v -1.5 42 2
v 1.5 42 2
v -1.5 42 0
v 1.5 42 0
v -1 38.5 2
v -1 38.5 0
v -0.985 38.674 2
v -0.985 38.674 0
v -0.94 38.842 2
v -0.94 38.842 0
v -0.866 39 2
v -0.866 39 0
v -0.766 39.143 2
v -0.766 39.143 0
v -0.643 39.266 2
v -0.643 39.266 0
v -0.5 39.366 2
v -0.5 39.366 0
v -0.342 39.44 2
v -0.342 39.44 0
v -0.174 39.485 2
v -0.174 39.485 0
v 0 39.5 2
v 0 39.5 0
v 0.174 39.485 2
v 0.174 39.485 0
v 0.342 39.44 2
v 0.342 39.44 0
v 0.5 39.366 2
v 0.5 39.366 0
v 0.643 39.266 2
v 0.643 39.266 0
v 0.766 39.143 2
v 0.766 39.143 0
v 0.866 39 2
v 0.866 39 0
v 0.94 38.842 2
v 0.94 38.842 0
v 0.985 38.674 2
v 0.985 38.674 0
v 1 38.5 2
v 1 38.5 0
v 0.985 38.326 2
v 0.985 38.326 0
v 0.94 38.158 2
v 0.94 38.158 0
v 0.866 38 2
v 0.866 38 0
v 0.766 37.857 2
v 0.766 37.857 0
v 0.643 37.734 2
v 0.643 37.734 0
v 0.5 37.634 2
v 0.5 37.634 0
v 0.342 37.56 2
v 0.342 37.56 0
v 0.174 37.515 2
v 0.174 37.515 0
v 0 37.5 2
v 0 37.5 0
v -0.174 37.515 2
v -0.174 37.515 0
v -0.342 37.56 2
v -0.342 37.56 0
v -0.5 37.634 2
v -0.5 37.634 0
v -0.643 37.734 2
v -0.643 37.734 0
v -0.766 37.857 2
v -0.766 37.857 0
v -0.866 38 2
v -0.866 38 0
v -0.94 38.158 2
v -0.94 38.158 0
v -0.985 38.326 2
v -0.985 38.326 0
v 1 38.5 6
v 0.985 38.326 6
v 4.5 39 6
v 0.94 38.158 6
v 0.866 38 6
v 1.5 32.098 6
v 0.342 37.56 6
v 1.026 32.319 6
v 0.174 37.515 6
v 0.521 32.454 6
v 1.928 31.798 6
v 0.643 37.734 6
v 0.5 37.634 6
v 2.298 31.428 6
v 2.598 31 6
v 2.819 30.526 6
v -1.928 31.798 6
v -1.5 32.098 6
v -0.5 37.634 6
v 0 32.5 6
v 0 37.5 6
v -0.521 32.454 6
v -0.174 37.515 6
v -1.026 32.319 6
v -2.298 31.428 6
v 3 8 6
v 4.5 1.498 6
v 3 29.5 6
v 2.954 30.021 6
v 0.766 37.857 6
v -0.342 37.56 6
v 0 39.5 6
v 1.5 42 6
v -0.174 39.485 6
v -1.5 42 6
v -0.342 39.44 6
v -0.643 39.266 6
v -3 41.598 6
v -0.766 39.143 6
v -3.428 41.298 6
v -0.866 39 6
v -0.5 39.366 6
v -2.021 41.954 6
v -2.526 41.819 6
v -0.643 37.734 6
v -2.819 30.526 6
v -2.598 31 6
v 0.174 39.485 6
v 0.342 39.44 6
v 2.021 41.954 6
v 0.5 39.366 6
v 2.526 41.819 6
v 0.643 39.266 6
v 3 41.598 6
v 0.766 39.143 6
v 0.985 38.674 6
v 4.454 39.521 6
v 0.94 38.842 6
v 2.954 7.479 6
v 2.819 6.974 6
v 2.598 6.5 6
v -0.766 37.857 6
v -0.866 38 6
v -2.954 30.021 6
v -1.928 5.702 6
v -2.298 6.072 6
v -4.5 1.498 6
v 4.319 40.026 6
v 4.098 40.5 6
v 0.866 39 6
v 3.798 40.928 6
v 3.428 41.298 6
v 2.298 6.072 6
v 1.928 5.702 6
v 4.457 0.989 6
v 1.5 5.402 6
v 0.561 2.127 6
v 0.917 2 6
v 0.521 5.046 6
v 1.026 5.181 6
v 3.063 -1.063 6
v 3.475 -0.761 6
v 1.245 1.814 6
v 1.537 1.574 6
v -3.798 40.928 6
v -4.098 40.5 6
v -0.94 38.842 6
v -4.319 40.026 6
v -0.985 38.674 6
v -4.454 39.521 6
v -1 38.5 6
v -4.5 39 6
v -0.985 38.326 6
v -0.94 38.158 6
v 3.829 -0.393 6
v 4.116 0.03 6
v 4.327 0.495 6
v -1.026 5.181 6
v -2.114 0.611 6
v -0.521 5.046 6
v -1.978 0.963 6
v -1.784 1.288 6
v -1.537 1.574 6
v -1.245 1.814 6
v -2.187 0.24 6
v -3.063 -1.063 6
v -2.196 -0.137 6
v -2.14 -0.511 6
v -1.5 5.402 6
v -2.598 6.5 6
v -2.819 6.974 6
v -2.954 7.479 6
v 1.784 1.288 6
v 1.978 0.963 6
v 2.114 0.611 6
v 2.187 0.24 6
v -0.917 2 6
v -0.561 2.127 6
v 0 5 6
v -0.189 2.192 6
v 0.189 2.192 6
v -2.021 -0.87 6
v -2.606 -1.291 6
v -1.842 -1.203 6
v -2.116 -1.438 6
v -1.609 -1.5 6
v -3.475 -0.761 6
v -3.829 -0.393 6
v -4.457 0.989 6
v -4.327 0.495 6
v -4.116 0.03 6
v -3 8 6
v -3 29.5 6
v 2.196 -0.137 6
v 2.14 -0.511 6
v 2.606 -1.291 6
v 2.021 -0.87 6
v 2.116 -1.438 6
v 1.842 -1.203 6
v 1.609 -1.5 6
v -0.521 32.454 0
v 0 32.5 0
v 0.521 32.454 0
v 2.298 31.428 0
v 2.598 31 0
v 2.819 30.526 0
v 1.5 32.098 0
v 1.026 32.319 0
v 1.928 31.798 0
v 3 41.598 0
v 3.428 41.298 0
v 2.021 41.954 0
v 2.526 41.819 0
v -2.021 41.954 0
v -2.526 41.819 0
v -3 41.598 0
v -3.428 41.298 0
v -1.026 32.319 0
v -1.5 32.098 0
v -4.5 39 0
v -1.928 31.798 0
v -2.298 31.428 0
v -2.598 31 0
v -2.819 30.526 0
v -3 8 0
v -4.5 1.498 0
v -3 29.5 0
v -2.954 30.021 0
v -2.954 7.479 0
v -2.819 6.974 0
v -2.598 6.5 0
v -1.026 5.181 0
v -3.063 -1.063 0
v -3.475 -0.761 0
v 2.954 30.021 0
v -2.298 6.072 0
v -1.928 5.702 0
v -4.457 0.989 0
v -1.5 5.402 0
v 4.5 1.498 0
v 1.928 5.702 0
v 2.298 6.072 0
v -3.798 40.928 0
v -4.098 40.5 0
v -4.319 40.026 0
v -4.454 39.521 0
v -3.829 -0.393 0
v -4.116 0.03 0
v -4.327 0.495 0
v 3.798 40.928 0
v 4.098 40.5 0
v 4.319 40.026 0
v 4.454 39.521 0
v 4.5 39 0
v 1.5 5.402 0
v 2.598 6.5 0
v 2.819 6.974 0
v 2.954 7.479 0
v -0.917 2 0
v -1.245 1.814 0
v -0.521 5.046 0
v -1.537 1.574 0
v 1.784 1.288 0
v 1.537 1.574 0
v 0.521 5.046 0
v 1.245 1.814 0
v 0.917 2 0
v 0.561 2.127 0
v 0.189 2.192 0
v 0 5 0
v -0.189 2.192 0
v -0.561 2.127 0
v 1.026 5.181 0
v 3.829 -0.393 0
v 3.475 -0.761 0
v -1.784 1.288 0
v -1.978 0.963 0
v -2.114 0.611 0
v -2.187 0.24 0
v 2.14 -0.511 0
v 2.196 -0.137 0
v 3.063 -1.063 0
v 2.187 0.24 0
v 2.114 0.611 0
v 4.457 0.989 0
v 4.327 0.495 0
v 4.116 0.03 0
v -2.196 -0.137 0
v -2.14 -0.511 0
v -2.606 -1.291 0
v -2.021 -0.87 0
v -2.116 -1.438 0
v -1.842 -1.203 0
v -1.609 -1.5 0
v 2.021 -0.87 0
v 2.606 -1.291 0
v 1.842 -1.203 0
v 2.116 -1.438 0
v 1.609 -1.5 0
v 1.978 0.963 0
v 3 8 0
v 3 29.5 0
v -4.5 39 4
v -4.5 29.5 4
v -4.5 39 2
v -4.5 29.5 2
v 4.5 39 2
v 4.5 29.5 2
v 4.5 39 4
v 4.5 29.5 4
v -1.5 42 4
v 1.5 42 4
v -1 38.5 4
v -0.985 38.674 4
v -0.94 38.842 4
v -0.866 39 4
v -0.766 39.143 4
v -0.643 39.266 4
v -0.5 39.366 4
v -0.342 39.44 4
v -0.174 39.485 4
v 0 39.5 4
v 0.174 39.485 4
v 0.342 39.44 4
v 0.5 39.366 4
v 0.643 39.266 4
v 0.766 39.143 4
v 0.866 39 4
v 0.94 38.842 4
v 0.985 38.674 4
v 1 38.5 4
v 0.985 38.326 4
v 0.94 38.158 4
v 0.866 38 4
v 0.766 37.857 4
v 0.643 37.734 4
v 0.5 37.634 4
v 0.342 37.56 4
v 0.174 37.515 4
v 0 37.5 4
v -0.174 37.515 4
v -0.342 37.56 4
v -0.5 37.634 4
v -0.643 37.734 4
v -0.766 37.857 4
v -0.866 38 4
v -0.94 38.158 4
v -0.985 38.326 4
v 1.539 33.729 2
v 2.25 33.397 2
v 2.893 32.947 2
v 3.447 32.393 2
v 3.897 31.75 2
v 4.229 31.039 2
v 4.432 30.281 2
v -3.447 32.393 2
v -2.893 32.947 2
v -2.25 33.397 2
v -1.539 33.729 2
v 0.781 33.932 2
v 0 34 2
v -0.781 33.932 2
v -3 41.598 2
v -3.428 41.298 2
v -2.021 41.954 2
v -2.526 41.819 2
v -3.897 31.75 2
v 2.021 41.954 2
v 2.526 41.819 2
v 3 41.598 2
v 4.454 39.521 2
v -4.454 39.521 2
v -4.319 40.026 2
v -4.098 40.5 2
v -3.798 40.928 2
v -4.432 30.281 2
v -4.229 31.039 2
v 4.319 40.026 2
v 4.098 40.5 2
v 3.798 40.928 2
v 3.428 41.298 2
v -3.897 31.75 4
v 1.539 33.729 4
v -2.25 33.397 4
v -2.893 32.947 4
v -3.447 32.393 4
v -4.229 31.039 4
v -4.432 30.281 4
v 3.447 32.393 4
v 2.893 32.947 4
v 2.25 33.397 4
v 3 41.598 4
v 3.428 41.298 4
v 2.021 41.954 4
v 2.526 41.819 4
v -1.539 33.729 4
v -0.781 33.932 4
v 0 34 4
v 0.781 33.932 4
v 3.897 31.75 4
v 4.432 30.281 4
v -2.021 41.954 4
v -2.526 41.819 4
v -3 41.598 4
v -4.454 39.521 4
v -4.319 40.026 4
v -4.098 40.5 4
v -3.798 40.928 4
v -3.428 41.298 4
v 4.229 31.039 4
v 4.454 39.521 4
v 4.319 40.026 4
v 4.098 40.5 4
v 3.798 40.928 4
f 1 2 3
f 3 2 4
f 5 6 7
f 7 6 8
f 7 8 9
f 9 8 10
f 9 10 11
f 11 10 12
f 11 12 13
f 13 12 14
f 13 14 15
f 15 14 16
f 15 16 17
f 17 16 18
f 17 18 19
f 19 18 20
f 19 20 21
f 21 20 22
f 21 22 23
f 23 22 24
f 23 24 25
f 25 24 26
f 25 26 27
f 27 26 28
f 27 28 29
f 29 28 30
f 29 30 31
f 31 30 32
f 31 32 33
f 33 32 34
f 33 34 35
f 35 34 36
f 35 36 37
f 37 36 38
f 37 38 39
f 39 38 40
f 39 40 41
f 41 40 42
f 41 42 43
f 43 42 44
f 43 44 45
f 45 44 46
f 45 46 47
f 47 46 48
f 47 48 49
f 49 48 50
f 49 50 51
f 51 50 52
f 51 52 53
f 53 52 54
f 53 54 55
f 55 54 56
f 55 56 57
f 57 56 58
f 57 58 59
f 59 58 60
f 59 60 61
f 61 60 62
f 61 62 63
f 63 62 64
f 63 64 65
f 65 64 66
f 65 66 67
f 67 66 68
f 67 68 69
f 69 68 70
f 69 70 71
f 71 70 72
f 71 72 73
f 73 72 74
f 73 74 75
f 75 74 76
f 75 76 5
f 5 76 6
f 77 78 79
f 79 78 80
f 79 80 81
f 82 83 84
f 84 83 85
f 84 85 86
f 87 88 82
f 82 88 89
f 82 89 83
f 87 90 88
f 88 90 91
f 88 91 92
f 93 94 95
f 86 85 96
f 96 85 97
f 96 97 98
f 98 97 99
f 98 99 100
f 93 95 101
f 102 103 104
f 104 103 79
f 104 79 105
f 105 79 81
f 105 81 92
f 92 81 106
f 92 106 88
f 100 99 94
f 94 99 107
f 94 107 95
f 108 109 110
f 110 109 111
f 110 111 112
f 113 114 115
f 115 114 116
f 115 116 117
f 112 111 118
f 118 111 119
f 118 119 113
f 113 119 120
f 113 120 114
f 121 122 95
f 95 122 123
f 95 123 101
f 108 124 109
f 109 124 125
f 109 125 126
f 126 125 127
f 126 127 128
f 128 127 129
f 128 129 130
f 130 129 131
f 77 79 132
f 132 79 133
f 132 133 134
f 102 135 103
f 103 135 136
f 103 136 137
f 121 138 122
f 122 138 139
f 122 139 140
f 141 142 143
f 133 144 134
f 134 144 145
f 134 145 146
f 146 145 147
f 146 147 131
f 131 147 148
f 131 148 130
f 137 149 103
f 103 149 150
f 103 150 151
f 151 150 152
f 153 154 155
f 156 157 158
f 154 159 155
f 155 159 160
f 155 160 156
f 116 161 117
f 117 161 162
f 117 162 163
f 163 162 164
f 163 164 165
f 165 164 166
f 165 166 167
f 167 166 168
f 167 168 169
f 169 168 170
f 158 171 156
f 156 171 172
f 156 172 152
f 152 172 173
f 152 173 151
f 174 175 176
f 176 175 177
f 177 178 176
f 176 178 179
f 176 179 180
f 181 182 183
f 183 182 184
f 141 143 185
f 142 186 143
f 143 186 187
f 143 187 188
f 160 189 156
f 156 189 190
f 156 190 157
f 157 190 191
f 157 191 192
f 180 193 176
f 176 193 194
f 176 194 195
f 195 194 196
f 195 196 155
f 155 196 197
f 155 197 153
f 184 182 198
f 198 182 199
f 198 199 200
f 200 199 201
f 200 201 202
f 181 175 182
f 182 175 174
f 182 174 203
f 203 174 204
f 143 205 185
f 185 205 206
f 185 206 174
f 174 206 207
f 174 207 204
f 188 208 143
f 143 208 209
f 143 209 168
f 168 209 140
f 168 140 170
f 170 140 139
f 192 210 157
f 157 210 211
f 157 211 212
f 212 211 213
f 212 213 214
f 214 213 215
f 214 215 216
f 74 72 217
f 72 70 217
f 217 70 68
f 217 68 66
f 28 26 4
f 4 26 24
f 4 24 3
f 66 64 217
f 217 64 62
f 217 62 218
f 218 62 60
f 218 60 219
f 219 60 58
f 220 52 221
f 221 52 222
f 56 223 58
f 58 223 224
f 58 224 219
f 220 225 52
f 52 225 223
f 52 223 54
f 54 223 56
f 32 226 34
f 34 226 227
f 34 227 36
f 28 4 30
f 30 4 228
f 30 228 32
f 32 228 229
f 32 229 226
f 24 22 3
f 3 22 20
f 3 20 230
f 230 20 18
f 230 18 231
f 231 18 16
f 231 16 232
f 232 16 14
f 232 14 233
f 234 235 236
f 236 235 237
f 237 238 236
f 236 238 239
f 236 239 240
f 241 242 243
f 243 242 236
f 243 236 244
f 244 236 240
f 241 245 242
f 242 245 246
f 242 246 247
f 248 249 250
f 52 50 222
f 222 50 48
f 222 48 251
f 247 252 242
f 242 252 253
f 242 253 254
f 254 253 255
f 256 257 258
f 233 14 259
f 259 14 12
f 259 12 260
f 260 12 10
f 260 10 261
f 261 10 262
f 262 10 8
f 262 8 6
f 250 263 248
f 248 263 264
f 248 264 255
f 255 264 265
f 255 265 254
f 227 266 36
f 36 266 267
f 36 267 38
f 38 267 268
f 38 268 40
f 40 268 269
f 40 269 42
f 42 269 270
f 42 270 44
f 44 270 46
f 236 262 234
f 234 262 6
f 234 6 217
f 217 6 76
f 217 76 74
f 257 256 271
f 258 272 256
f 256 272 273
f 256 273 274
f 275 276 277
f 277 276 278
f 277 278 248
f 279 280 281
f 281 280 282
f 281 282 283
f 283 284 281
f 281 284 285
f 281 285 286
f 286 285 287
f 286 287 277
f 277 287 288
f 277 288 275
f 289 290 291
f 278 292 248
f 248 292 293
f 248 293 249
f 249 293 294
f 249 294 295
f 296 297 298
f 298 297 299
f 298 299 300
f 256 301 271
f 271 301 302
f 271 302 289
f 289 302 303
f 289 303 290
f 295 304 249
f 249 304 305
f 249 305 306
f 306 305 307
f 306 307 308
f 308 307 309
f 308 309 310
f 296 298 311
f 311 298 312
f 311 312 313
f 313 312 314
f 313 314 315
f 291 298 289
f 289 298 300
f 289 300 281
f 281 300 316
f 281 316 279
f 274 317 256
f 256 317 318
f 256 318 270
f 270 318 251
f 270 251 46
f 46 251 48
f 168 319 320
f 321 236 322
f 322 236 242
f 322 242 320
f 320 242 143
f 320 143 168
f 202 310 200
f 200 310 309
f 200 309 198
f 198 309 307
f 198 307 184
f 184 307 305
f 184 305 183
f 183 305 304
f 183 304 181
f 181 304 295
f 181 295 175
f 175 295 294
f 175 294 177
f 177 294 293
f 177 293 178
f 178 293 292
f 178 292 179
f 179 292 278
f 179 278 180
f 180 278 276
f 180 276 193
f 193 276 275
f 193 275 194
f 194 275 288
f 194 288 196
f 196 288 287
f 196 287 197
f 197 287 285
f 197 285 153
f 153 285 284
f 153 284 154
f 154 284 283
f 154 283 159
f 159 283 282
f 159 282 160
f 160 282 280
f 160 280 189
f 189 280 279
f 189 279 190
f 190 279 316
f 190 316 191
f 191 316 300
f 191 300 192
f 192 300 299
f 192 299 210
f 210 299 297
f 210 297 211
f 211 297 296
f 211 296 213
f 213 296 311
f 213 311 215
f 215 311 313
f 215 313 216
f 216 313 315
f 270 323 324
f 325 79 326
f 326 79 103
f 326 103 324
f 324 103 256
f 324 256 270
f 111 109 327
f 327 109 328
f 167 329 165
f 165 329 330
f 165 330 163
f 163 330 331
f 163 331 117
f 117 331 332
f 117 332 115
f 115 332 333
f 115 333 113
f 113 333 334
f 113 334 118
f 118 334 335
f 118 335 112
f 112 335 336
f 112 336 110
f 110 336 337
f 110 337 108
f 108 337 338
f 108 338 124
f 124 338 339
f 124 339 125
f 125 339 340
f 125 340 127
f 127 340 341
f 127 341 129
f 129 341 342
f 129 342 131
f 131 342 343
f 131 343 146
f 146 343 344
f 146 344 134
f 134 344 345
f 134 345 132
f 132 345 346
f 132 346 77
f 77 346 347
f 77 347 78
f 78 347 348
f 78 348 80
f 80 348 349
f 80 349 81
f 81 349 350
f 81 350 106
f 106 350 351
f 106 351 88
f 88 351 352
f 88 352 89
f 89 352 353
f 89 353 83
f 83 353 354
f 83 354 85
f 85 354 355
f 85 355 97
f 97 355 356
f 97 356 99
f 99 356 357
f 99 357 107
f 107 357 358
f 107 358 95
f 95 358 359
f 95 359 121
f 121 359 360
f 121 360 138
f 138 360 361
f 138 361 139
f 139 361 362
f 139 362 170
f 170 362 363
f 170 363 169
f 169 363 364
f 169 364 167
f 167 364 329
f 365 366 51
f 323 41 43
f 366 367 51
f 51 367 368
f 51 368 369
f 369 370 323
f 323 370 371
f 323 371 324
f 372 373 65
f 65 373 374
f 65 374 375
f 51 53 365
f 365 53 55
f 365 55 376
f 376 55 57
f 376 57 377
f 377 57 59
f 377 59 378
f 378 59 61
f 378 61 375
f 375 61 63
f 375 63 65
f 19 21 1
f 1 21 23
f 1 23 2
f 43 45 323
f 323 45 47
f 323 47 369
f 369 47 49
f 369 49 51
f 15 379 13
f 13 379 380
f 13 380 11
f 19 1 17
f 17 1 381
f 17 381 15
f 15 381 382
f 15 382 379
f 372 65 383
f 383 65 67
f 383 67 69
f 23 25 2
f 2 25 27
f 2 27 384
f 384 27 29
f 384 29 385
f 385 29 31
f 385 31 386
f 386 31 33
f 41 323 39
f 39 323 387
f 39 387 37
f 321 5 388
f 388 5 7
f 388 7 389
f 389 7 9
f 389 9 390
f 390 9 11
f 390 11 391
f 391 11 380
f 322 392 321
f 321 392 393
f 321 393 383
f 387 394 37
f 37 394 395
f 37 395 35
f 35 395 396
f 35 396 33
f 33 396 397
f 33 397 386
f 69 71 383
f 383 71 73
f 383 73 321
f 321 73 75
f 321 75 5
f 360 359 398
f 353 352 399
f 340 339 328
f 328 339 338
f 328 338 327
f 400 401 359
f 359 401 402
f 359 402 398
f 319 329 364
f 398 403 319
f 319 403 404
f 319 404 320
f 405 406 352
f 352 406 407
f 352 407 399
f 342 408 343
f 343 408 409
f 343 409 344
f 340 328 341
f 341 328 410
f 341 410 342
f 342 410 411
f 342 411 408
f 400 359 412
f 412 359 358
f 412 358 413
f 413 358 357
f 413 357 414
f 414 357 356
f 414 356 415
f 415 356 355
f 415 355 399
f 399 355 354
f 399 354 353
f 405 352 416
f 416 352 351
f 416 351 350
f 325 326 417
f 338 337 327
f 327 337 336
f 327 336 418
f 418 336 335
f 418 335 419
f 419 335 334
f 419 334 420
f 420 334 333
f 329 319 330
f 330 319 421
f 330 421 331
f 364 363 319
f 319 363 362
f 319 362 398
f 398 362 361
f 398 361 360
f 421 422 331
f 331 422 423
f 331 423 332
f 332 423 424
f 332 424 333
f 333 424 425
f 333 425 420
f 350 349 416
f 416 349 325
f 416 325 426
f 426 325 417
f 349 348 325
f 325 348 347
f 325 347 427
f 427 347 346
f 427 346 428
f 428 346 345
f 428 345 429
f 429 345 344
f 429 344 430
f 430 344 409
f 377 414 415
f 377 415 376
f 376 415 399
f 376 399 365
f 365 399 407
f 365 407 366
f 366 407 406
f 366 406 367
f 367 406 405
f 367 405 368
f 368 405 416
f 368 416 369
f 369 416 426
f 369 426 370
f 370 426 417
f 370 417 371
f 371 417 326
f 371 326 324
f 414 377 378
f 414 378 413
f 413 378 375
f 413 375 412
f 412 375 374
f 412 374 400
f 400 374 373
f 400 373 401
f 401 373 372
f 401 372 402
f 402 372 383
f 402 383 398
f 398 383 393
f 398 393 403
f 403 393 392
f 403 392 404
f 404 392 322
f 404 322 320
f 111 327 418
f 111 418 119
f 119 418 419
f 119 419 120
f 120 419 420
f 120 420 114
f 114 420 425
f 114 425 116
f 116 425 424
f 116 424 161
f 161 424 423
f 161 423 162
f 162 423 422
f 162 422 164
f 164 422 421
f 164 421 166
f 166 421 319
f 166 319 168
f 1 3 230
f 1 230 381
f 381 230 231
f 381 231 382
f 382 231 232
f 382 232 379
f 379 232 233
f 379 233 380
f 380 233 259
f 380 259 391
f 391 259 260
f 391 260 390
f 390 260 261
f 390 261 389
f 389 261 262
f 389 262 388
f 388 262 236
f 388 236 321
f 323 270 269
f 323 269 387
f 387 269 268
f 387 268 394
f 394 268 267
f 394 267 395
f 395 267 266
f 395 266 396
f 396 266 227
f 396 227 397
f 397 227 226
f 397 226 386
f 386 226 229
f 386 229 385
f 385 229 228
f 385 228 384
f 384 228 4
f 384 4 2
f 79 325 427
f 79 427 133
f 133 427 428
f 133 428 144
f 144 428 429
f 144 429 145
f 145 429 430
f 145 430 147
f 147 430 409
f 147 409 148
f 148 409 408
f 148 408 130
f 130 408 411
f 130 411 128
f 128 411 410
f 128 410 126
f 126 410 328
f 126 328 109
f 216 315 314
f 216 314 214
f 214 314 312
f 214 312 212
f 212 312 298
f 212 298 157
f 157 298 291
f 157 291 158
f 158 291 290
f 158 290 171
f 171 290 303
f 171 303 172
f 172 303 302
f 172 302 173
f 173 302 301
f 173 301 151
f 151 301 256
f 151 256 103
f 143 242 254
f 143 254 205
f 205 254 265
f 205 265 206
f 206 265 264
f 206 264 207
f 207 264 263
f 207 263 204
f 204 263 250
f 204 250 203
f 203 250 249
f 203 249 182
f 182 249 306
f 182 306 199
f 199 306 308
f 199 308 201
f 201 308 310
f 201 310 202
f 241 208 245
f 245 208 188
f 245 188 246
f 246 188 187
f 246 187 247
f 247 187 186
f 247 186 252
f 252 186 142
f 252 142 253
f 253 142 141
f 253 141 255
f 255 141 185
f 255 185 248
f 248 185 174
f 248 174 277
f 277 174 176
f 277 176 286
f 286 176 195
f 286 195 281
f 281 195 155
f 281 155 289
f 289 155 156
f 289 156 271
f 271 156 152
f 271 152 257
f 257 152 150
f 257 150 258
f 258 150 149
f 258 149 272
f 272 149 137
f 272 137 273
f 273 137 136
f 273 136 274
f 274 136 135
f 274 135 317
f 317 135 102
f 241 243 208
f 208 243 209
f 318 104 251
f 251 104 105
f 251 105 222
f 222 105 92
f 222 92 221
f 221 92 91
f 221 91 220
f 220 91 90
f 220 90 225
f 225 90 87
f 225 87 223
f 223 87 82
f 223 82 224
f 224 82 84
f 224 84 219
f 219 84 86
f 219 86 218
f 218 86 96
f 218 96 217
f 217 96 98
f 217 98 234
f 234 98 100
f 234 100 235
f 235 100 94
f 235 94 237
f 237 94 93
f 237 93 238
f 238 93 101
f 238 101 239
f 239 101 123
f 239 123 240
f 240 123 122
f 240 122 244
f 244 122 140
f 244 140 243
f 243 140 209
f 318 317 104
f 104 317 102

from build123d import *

# Parameters (mm, degrees)
CROQUIS1_R              = 1
SALIENTE_EXTRUIR1_DEPTH = 6
CROQUIS2_W              = 9
CROQUIS2_H              = 2
CORTAR_EXTRUIR1_DEPTH   = 8
REDONDEO1_R             = 4.5
REDONDEO2_R             = 3
CORTAR_EXTRUIR2_DEPTH   = 43.66438796


# Some blends are built 0.0001 mm under size
with BuildPart() as part:
    # Croquis1 → Saliente-Extruir1 (new body)
    with BuildSketch(Plane.XY):
        with BuildLine():
            Line((-4.5, -1.5), (-1.609347694, -1.5))
            ThreePointArc((-1.609347694, -1.5), (0, 2.2), (1.609347694, -1.5))
            Line((1.609347694, -1.5), (4.5, -1.5))
            Line((4.5, -1.5), (4.5, 42))
            Line((4.5, 42), (-4.5, 42))
            Line((-4.5, 42), (-4.5, -1.5))
        make_face()
        with Locations((0, 38.5)):
            Circle(CROQUIS1_R, mode=Mode.SUBTRACT)
    extrude(amount=SALIENTE_EXTRUIR1_DEPTH)

    # Croquis2 → Cortar-Extruir1 (cut)
    with BuildSketch(Plane(origin=(0, 42, 0), x_dir=(1, 0, 0), z_dir=(0, 1, 0))):
        with Locations((0, -3)):
            Rectangle(CROQUIS2_W, CROQUIS2_H)
    extrude(amount=-CORTAR_EXTRUIR1_DEPTH, mode=Mode.SUBTRACT)

    # Redondeo1
    redondeo1_edges = [part.edges().sort_by_distance(p)[0] for p in [
        (-4.5, 34, 3),
        (4.5, 34, 3),
    ]]
    fillet(redondeo1_edges, radius=REDONDEO1_R - 0.0001)  # a hair under: the kernel refuses the full size

    # Redondeo2
    # the kernel refuses this fillet: 3 mm, written as the material it takes off along each edge
    with BuildSketch(Plane(origin=(-4.5, 42, -3.5), x_dir=(0, -1, 0), z_dir=(0, 0, 1)), Plane(origin=(-4.5, 42, -7.5), x_dir=(0, -1, 0), z_dir=(0, 0, 1))) as redondeo2_piece_1:
        with BuildLine():
            CenterArc((REDONDEO2_R, REDONDEO2_R), REDONDEO2_R, 180, 90)
            Line((0, REDONDEO2_R), (-REDONDEO2_R * 0.02, REDONDEO2_R))
            Line((-REDONDEO2_R * 0.02, REDONDEO2_R), (-REDONDEO2_R * 0.02, -REDONDEO2_R * 0.02))
            Line((-REDONDEO2_R * 0.02, -REDONDEO2_R * 0.02), (REDONDEO2_R, -REDONDEO2_R * 0.02))
            Line((REDONDEO2_R, -REDONDEO2_R * 0.02), (REDONDEO2_R, 0))
        make_face()
    extrude(amount=17, mode=Mode.SUBTRACT)
    with BuildSketch(Plane(origin=(4.5, 42, -7.5), x_dir=(0, -1, 0), z_dir=(0, 0, 1)), Plane(origin=(4.5, 42, -3.5), x_dir=(0, -1, 0), z_dir=(0, 0, 1))) as redondeo2_piece_2:
        with BuildLine():
            CenterArc((REDONDEO2_R, -REDONDEO2_R), REDONDEO2_R, 90, 90)
            Line((0, -REDONDEO2_R), (-REDONDEO2_R * 0.02, -REDONDEO2_R))
            Line((-REDONDEO2_R * 0.02, -REDONDEO2_R), (-REDONDEO2_R * 0.02, REDONDEO2_R * 0.02))
            Line((-REDONDEO2_R * 0.02, REDONDEO2_R * 0.02), (REDONDEO2_R, REDONDEO2_R * 0.02))
            Line((REDONDEO2_R, REDONDEO2_R * 0.02), (REDONDEO2_R, 0))
        make_face()
    extrude(amount=17, mode=Mode.SUBTRACT)
    with BuildSketch(Plane(origin=(4.5, -1.5, -7.495016295), x_dir=(0, 1, 0), z_dir=(0, 0, 1))) as redondeo2_piece_3:
        with BuildLine():
            CenterArc((2.998006518, 3), REDONDEO2_R, 182.088849817, 87.911150183)
            Line((0, 2.890652306), (-0.05996013, 2.888465352))
            ThreePointArc((-0.05996013, 2.888465352), (-0.06, 1.445326153), (-0.06, 0))
            Line((-0.06, 0), (0, -0.06))
            Line((0, -0.06), (2.998006518, -0.06))
            Line((2.998006518, -0.06), (2.998006518, 0))
        make_face()
    extrude(amount=20.99003259, mode=Mode.SUBTRACT)
    with BuildSketch(Plane(origin=(-4.5, -1.5, -7.495016295), x_dir=(0, 1, 0), z_dir=(0, 0, 1))) as redondeo2_piece_4:
        with BuildLine():
            CenterArc((2.998006518, -3), REDONDEO2_R, 90, 87.911150183)
            Line((0, -2.890652306), (-0.05996013, -2.888465352))
            ThreePointArc((-0.05996013, -2.888465352), (-0.06, -1.445326153), (-0.06, 0))
            Line((-0.06, 0), (0, 0.06))
            Line((0, 0.06), (2.998006518, 0.06))
            Line((2.998006518, 0.06), (2.998006518, 0))
        make_face()
    extrude(amount=20.99003259, mode=Mode.SUBTRACT)

    # Croquis3 → Cortar-Extruir2 (cut, through all)
    with BuildSketch(Plane.XY.offset(6)):
        with BuildLine():
            Line((-3, 8), (-3, 29.5))
            ThreePointArc((-3, 29.5), (0, 32.5), (3, 29.5))
            Line((3, 29.5), (3, 8))
            ThreePointArc((3, 8), (0, 5), (-3, 8))
        make_face()
    extrude(amount=-CORTAR_EXTRUIR2_DEPTH, mode=Mode.SUBTRACT)


solid = part.part
